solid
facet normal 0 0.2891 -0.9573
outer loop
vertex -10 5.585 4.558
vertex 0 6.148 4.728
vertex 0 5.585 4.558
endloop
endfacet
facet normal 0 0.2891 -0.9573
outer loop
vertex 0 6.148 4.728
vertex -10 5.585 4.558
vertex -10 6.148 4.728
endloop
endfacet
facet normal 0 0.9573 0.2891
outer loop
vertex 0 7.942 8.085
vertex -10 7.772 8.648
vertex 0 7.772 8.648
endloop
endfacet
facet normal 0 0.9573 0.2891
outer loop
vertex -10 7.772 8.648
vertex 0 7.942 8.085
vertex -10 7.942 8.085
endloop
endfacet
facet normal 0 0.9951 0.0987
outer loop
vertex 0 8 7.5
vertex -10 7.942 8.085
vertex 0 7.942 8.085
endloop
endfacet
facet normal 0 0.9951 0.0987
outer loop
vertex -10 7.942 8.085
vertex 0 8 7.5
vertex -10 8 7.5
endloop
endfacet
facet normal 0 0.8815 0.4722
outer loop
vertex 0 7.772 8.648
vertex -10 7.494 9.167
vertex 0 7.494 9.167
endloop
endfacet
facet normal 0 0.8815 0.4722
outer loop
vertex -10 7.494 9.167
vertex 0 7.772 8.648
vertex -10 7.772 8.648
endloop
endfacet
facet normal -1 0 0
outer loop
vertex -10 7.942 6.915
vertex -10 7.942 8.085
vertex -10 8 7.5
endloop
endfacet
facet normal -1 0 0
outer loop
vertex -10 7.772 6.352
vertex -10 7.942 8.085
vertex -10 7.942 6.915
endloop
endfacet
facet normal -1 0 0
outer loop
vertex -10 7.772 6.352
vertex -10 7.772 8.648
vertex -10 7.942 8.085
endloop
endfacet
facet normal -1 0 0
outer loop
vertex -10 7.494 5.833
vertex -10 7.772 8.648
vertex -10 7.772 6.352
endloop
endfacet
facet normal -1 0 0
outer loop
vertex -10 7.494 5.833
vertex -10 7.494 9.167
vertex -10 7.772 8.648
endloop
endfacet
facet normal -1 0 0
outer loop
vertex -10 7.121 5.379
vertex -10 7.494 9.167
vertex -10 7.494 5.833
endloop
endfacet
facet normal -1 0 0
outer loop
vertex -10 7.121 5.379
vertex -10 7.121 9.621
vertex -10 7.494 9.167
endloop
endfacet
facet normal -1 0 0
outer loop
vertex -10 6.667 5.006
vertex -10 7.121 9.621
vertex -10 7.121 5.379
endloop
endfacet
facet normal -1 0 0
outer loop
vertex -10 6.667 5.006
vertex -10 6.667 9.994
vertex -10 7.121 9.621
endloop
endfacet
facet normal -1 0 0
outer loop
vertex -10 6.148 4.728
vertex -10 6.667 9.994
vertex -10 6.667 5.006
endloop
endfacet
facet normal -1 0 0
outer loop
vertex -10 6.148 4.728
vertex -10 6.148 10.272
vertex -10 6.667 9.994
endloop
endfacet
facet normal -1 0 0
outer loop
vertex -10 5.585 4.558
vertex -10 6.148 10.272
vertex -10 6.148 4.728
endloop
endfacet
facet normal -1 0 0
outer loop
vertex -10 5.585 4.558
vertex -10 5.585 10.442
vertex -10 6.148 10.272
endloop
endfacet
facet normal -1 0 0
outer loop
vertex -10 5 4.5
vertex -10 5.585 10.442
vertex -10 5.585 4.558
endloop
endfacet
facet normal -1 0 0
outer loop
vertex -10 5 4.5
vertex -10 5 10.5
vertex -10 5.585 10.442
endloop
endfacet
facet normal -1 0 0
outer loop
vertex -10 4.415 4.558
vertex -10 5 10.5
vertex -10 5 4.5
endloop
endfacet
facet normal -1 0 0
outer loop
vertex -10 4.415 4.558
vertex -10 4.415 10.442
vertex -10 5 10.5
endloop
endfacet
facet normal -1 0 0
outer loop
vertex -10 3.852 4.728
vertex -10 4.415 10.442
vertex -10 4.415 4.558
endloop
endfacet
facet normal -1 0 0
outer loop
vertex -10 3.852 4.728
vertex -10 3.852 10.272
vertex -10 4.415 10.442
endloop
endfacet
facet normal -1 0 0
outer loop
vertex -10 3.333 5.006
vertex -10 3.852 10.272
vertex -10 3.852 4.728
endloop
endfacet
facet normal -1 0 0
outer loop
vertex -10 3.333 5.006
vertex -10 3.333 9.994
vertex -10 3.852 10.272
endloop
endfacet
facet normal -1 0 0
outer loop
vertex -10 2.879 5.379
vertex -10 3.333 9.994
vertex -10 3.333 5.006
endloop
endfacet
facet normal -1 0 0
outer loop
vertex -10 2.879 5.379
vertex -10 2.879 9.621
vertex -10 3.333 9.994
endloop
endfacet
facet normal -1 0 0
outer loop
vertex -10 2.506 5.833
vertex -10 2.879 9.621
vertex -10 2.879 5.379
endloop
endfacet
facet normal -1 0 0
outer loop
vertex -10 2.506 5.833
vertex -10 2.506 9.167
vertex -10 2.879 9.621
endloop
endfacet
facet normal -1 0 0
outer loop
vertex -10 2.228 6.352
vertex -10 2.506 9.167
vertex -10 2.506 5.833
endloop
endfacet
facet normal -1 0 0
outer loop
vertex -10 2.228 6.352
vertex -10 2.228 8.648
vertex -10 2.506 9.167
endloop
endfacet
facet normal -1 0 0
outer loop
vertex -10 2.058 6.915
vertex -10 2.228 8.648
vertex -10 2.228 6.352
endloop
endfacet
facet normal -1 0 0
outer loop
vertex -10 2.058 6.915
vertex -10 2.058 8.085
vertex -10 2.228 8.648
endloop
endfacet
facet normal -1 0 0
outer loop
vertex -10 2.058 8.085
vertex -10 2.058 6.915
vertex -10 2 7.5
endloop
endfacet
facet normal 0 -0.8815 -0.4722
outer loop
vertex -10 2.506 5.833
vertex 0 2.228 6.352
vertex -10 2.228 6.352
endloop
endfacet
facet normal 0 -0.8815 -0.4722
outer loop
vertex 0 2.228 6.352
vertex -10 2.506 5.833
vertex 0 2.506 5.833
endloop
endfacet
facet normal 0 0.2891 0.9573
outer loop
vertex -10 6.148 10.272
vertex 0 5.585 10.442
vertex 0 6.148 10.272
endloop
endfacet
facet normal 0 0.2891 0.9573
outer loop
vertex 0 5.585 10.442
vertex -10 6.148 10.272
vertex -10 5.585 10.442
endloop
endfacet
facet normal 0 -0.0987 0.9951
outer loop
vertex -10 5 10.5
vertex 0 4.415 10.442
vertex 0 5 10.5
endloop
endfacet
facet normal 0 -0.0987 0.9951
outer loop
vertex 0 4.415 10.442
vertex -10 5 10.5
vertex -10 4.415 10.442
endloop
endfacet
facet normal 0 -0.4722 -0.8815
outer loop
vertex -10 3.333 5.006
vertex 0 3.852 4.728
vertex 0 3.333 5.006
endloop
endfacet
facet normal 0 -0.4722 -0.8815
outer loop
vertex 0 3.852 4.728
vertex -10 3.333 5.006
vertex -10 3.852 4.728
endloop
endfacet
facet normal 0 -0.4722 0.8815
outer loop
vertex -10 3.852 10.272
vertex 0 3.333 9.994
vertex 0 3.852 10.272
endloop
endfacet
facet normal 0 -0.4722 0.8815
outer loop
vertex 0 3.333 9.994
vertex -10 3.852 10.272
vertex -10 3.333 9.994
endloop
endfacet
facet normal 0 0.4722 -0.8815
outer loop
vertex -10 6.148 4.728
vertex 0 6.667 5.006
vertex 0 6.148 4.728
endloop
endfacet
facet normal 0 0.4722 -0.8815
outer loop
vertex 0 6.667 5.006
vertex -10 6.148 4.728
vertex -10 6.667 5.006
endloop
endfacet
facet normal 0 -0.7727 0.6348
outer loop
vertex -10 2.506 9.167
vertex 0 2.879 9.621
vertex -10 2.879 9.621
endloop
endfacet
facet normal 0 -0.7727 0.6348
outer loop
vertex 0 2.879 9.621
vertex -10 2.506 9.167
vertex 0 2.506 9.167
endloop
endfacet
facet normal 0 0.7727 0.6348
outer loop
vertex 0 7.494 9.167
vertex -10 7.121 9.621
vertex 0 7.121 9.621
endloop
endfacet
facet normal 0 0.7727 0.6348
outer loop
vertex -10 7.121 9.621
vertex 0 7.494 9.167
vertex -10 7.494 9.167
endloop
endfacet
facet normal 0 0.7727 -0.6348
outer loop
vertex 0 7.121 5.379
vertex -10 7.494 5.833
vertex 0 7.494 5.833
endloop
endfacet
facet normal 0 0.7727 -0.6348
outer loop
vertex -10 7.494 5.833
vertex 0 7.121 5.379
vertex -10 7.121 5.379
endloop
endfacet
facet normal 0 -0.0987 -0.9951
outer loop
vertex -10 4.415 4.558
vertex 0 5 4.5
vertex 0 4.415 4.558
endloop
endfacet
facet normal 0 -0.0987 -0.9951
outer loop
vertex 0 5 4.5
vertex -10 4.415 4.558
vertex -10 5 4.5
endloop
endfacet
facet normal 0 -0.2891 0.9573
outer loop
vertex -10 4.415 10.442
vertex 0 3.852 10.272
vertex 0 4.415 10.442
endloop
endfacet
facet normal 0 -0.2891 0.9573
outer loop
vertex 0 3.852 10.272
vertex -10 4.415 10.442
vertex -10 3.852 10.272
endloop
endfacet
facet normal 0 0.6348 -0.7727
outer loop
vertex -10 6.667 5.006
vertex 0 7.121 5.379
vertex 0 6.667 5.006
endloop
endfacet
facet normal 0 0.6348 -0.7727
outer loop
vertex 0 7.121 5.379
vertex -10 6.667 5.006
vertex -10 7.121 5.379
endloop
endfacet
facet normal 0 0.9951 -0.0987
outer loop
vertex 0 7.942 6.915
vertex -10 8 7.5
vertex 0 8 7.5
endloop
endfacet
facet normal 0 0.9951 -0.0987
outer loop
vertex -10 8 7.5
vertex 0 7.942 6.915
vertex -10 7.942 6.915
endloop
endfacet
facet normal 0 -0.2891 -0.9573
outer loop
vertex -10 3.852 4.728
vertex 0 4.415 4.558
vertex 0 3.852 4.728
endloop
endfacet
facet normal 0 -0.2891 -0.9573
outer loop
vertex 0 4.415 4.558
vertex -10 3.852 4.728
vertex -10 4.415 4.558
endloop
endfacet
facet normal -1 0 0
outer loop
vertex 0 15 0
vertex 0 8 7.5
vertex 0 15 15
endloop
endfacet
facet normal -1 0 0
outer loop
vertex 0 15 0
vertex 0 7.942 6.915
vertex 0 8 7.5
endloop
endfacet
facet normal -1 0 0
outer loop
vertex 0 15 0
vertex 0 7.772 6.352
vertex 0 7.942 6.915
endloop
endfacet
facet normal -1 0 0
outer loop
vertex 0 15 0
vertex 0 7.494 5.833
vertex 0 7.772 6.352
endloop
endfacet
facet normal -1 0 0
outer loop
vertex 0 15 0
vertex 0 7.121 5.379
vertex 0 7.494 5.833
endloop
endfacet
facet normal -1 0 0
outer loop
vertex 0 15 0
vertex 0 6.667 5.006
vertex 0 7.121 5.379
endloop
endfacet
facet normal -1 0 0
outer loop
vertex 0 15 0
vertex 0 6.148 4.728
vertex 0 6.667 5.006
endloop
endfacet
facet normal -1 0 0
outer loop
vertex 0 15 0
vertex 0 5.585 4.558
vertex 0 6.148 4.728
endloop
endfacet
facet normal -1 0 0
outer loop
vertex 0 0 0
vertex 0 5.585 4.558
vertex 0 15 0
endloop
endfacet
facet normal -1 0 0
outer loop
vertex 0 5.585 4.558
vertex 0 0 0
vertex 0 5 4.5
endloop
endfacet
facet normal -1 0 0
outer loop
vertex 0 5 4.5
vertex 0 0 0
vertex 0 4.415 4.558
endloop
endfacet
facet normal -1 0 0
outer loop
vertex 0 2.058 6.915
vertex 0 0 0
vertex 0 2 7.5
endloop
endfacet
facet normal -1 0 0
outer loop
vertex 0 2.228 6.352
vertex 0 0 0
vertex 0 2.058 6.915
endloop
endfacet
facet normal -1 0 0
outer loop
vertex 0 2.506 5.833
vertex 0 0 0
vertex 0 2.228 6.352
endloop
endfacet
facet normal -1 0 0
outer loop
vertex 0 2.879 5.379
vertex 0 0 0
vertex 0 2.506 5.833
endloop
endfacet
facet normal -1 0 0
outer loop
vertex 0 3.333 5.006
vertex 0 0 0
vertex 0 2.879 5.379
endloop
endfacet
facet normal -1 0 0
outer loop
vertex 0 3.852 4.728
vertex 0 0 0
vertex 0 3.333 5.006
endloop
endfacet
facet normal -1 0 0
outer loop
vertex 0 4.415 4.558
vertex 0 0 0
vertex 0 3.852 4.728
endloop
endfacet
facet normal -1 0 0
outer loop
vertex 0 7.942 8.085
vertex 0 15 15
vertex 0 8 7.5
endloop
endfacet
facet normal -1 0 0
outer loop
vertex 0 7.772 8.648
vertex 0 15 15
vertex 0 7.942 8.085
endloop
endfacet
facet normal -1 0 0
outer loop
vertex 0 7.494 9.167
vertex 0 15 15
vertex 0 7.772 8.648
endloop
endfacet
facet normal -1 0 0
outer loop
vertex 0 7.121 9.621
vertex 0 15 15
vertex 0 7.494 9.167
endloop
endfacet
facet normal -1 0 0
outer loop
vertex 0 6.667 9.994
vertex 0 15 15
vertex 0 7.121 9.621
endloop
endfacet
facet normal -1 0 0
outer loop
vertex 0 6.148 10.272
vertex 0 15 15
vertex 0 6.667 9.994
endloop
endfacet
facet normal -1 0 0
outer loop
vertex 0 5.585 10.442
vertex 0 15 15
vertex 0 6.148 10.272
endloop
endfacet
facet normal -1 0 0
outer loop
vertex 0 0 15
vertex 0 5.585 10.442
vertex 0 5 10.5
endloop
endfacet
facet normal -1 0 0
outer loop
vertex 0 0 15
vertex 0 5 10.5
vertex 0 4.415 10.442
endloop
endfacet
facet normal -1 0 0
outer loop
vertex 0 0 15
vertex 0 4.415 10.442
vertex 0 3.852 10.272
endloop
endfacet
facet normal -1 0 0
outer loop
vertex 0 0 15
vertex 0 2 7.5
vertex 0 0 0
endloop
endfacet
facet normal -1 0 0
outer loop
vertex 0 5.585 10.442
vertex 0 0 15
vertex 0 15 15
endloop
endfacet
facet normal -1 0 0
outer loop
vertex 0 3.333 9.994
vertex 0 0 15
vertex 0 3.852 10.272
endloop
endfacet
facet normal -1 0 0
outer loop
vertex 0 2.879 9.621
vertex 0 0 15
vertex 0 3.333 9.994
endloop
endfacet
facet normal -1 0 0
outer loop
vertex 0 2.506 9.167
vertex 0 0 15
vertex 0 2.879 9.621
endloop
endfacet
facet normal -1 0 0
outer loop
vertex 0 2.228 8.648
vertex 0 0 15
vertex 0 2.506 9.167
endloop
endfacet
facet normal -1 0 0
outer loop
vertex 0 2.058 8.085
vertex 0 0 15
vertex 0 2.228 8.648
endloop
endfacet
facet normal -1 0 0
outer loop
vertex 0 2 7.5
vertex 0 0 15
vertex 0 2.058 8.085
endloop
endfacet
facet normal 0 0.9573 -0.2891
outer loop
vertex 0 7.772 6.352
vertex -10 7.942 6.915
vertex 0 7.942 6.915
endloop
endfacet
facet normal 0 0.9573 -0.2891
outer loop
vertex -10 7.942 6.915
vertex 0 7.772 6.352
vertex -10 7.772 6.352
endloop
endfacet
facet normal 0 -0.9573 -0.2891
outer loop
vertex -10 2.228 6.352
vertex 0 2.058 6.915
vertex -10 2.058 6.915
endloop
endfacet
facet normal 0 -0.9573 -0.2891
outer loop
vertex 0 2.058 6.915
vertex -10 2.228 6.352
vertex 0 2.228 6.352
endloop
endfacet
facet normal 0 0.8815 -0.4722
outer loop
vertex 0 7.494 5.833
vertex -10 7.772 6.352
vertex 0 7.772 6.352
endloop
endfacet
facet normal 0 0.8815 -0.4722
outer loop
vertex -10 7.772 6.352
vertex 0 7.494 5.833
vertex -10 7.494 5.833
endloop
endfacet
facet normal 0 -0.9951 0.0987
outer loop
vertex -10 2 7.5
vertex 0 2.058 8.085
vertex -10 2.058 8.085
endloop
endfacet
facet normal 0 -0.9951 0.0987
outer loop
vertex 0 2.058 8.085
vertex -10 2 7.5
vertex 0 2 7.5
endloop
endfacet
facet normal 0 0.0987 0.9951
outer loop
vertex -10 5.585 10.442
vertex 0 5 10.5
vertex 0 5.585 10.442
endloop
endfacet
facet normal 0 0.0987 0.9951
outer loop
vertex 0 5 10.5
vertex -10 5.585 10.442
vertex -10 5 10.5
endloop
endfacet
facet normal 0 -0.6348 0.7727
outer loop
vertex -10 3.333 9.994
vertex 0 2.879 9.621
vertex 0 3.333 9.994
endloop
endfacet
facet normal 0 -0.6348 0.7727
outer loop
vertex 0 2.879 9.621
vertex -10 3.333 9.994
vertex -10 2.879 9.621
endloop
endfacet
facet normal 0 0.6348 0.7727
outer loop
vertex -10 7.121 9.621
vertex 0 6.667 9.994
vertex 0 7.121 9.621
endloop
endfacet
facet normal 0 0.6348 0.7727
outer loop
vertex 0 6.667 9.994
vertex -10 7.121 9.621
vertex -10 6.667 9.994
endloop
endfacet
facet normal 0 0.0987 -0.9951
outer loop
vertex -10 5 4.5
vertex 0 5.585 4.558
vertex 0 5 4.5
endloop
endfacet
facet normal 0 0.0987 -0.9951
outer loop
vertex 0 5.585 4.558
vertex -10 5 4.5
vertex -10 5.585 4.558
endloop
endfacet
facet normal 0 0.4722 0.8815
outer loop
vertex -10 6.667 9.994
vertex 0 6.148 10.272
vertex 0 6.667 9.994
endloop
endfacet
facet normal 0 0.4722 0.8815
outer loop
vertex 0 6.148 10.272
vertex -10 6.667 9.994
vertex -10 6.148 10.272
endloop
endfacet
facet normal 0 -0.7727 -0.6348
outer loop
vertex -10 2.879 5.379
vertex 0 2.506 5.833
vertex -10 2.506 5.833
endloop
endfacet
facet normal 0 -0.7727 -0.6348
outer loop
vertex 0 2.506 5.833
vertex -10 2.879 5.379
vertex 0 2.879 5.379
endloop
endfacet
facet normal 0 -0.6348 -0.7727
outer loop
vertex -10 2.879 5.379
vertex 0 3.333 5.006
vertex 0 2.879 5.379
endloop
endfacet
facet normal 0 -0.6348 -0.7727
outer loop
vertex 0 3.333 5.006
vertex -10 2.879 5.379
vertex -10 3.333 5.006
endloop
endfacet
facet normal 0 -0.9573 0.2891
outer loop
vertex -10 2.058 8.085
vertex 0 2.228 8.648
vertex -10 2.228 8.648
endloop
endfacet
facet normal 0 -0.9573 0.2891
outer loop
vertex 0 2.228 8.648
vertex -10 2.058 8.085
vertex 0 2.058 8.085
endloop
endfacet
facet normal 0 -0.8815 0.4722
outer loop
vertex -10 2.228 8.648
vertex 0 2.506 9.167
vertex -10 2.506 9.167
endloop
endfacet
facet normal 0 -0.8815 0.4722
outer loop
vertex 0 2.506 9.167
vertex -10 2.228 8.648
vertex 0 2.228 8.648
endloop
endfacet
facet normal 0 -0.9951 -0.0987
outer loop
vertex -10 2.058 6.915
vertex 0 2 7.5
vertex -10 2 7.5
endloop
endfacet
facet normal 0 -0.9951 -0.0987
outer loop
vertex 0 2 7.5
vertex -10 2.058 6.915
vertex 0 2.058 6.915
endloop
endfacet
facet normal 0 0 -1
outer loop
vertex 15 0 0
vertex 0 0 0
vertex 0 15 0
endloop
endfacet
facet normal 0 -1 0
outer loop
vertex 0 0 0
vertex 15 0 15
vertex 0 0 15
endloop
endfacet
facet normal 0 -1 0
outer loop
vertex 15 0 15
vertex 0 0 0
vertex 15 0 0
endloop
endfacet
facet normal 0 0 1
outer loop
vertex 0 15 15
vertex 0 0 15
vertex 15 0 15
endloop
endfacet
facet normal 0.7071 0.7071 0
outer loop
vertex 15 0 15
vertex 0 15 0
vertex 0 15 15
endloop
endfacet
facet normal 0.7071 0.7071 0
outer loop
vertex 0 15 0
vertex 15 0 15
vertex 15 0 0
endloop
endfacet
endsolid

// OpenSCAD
width=15;
holesize=6;
holedepth=10;
rotate(a=[90,0,90]) {
    translate([width/3,width/2,-holedepth])
    cylinder(h=holedepth, d=holesize, center=false, $fn=32);
}
linear_extrude(width) {
  polygon(points=[[0,0],[width,0],[0,width]]);
}
